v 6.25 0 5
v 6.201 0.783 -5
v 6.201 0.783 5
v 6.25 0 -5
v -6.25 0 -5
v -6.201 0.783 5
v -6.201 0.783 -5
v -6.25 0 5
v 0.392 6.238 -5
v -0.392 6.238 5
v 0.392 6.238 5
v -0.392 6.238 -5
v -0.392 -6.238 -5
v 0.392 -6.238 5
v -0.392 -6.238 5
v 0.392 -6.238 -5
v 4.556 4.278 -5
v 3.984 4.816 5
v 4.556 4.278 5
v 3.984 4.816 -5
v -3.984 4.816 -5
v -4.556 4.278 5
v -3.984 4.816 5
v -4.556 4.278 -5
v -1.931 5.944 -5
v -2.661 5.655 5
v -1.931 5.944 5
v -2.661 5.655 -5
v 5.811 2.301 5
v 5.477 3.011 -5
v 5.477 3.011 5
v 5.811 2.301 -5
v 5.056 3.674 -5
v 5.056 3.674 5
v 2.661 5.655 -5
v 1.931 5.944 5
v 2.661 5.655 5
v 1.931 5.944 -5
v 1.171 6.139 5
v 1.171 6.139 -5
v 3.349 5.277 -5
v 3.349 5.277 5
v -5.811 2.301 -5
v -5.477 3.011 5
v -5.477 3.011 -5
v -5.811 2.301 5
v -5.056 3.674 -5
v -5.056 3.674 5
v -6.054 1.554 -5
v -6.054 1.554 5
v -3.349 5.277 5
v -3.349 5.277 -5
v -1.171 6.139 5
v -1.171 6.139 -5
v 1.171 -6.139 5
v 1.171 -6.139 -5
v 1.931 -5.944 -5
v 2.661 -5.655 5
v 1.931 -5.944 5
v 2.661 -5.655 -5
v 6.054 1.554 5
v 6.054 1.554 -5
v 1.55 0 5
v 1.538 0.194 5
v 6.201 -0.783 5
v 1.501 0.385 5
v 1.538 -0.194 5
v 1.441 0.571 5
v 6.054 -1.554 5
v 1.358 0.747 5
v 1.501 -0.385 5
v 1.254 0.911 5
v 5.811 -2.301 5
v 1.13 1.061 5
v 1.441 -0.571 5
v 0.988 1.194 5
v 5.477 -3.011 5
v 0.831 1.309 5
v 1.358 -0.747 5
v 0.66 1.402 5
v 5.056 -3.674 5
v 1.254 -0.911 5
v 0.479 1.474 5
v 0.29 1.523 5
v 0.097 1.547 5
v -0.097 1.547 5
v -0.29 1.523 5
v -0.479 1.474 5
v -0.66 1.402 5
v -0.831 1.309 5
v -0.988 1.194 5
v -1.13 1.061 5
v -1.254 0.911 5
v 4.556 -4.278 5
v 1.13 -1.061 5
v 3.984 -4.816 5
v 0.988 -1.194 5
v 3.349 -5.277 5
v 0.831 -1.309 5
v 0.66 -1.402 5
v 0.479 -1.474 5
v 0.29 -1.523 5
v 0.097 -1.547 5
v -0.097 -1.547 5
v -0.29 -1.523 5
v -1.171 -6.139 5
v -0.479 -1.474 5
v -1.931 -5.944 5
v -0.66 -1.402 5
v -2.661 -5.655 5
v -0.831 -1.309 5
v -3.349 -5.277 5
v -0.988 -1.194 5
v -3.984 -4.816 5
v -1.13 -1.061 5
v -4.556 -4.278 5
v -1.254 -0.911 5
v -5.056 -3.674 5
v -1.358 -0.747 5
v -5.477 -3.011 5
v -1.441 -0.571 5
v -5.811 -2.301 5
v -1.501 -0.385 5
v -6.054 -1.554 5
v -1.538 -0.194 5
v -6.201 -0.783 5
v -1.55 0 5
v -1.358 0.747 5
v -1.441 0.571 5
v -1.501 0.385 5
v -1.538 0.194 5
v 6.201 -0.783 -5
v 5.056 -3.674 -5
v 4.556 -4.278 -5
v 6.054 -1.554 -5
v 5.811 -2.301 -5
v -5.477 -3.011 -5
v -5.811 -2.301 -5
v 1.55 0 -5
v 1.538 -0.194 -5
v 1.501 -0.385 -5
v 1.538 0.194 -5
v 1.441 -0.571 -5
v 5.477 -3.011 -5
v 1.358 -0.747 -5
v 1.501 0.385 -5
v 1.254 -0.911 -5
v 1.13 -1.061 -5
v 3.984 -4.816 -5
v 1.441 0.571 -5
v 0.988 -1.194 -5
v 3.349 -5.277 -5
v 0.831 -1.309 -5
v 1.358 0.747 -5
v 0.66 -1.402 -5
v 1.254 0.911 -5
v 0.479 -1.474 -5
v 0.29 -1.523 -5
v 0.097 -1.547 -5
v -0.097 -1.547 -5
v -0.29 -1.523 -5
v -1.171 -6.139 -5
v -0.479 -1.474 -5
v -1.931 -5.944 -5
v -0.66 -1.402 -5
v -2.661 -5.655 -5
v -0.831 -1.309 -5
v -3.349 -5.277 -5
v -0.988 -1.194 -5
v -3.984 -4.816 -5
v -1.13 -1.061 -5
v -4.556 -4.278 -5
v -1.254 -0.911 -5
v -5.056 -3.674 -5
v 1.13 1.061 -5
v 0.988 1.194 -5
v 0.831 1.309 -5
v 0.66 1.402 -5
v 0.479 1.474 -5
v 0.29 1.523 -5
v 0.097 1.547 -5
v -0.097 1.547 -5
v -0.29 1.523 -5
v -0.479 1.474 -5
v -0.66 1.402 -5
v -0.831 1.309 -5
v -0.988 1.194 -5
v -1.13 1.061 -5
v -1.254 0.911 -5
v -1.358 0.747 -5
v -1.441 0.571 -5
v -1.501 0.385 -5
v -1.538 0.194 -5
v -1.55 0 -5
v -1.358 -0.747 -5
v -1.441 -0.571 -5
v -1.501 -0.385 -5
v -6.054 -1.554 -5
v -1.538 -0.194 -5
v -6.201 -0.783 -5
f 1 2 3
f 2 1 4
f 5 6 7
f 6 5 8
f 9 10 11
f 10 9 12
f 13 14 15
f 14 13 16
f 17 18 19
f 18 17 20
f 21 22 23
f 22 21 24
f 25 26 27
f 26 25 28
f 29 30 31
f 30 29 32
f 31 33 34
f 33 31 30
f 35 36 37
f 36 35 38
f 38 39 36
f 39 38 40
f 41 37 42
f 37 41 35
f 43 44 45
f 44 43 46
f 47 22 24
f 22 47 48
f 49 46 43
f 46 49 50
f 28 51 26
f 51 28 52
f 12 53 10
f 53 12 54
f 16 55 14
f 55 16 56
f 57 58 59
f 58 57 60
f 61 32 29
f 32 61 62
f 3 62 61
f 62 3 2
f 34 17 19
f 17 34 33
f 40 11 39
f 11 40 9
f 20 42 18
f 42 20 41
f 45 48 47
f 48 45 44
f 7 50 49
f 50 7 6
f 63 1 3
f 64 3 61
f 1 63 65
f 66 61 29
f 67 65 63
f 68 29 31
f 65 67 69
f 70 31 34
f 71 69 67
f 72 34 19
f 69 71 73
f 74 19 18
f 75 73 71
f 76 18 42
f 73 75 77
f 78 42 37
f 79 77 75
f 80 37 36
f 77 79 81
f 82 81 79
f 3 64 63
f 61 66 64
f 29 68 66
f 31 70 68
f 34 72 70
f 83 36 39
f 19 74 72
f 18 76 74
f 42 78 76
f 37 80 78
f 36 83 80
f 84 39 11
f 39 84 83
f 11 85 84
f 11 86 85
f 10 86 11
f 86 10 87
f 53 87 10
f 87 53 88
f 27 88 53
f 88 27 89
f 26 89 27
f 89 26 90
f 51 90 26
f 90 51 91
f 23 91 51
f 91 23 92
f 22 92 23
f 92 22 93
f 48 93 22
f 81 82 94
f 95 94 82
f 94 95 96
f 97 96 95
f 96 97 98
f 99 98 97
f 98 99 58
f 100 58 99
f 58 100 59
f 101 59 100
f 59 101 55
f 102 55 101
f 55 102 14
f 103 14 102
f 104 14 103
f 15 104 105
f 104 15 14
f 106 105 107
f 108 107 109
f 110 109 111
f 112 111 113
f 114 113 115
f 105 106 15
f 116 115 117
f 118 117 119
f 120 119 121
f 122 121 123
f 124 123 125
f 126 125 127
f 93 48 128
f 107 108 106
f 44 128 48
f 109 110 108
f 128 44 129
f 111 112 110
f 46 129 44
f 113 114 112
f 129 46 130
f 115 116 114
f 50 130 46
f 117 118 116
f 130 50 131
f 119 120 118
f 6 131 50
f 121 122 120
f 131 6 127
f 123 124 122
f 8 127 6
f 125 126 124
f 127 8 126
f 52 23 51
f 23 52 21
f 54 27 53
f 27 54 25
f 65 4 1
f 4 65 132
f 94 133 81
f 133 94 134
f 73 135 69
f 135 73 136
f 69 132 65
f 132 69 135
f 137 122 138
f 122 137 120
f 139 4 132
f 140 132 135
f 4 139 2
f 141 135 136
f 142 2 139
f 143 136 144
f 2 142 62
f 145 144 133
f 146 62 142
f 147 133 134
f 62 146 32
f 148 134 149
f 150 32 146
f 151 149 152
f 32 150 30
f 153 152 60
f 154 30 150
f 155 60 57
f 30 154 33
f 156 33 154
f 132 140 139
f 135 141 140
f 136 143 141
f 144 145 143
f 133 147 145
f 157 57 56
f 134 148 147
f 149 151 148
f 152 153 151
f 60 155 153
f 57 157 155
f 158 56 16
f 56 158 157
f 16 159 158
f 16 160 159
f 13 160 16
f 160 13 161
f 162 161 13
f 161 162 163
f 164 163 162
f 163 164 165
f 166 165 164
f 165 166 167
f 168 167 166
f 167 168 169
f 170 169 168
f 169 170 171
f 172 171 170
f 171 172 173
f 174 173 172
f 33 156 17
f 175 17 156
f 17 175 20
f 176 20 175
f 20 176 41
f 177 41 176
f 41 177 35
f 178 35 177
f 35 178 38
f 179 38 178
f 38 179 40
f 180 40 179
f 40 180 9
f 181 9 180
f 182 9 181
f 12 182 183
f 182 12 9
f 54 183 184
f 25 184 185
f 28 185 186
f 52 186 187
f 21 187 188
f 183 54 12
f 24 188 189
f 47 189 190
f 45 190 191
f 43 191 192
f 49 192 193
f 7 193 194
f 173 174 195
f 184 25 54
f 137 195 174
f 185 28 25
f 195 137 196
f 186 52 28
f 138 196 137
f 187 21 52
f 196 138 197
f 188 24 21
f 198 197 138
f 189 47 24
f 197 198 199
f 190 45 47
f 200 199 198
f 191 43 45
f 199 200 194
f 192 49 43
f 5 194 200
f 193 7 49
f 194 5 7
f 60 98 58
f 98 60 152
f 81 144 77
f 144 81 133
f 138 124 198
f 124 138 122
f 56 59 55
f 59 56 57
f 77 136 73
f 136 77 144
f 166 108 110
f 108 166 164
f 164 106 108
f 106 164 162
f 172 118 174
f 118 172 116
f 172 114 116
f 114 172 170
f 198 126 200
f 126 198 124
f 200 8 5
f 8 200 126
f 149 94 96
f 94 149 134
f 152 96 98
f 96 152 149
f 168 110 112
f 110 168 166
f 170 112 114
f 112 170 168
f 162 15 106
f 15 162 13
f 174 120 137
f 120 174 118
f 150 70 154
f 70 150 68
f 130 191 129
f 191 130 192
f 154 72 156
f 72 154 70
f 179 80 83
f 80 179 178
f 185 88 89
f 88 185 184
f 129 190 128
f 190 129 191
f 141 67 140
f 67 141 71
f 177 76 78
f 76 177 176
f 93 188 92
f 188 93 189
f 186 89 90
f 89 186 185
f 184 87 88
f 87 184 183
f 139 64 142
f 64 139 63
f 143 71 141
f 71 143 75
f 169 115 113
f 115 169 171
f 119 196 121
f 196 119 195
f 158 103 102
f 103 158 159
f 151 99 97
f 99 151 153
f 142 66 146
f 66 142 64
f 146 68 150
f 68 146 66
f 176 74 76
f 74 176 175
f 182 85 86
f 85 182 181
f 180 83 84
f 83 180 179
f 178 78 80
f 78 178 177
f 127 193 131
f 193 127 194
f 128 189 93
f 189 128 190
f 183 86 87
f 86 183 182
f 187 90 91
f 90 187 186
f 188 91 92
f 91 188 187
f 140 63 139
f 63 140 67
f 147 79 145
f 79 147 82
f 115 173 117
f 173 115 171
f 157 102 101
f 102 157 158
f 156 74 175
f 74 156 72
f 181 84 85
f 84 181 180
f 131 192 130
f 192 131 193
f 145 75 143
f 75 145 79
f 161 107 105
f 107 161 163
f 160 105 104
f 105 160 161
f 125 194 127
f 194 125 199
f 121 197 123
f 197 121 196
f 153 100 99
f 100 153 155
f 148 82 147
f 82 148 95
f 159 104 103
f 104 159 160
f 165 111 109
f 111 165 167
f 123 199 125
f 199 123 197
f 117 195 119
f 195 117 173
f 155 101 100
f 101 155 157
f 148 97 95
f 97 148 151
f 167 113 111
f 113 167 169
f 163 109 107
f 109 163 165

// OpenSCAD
$fn = 50;


difference() {
	union() {
		translate(v = [0, 0, -5.0000000000]) {
			cylinder(h = 10, r = 6.2500000000);
		}
	}
	union() {
		translate(v = [0, 0, -100.0000000000]) {
			cylinder(h = 200, r = 1.5500000000);
		}
	}
}
